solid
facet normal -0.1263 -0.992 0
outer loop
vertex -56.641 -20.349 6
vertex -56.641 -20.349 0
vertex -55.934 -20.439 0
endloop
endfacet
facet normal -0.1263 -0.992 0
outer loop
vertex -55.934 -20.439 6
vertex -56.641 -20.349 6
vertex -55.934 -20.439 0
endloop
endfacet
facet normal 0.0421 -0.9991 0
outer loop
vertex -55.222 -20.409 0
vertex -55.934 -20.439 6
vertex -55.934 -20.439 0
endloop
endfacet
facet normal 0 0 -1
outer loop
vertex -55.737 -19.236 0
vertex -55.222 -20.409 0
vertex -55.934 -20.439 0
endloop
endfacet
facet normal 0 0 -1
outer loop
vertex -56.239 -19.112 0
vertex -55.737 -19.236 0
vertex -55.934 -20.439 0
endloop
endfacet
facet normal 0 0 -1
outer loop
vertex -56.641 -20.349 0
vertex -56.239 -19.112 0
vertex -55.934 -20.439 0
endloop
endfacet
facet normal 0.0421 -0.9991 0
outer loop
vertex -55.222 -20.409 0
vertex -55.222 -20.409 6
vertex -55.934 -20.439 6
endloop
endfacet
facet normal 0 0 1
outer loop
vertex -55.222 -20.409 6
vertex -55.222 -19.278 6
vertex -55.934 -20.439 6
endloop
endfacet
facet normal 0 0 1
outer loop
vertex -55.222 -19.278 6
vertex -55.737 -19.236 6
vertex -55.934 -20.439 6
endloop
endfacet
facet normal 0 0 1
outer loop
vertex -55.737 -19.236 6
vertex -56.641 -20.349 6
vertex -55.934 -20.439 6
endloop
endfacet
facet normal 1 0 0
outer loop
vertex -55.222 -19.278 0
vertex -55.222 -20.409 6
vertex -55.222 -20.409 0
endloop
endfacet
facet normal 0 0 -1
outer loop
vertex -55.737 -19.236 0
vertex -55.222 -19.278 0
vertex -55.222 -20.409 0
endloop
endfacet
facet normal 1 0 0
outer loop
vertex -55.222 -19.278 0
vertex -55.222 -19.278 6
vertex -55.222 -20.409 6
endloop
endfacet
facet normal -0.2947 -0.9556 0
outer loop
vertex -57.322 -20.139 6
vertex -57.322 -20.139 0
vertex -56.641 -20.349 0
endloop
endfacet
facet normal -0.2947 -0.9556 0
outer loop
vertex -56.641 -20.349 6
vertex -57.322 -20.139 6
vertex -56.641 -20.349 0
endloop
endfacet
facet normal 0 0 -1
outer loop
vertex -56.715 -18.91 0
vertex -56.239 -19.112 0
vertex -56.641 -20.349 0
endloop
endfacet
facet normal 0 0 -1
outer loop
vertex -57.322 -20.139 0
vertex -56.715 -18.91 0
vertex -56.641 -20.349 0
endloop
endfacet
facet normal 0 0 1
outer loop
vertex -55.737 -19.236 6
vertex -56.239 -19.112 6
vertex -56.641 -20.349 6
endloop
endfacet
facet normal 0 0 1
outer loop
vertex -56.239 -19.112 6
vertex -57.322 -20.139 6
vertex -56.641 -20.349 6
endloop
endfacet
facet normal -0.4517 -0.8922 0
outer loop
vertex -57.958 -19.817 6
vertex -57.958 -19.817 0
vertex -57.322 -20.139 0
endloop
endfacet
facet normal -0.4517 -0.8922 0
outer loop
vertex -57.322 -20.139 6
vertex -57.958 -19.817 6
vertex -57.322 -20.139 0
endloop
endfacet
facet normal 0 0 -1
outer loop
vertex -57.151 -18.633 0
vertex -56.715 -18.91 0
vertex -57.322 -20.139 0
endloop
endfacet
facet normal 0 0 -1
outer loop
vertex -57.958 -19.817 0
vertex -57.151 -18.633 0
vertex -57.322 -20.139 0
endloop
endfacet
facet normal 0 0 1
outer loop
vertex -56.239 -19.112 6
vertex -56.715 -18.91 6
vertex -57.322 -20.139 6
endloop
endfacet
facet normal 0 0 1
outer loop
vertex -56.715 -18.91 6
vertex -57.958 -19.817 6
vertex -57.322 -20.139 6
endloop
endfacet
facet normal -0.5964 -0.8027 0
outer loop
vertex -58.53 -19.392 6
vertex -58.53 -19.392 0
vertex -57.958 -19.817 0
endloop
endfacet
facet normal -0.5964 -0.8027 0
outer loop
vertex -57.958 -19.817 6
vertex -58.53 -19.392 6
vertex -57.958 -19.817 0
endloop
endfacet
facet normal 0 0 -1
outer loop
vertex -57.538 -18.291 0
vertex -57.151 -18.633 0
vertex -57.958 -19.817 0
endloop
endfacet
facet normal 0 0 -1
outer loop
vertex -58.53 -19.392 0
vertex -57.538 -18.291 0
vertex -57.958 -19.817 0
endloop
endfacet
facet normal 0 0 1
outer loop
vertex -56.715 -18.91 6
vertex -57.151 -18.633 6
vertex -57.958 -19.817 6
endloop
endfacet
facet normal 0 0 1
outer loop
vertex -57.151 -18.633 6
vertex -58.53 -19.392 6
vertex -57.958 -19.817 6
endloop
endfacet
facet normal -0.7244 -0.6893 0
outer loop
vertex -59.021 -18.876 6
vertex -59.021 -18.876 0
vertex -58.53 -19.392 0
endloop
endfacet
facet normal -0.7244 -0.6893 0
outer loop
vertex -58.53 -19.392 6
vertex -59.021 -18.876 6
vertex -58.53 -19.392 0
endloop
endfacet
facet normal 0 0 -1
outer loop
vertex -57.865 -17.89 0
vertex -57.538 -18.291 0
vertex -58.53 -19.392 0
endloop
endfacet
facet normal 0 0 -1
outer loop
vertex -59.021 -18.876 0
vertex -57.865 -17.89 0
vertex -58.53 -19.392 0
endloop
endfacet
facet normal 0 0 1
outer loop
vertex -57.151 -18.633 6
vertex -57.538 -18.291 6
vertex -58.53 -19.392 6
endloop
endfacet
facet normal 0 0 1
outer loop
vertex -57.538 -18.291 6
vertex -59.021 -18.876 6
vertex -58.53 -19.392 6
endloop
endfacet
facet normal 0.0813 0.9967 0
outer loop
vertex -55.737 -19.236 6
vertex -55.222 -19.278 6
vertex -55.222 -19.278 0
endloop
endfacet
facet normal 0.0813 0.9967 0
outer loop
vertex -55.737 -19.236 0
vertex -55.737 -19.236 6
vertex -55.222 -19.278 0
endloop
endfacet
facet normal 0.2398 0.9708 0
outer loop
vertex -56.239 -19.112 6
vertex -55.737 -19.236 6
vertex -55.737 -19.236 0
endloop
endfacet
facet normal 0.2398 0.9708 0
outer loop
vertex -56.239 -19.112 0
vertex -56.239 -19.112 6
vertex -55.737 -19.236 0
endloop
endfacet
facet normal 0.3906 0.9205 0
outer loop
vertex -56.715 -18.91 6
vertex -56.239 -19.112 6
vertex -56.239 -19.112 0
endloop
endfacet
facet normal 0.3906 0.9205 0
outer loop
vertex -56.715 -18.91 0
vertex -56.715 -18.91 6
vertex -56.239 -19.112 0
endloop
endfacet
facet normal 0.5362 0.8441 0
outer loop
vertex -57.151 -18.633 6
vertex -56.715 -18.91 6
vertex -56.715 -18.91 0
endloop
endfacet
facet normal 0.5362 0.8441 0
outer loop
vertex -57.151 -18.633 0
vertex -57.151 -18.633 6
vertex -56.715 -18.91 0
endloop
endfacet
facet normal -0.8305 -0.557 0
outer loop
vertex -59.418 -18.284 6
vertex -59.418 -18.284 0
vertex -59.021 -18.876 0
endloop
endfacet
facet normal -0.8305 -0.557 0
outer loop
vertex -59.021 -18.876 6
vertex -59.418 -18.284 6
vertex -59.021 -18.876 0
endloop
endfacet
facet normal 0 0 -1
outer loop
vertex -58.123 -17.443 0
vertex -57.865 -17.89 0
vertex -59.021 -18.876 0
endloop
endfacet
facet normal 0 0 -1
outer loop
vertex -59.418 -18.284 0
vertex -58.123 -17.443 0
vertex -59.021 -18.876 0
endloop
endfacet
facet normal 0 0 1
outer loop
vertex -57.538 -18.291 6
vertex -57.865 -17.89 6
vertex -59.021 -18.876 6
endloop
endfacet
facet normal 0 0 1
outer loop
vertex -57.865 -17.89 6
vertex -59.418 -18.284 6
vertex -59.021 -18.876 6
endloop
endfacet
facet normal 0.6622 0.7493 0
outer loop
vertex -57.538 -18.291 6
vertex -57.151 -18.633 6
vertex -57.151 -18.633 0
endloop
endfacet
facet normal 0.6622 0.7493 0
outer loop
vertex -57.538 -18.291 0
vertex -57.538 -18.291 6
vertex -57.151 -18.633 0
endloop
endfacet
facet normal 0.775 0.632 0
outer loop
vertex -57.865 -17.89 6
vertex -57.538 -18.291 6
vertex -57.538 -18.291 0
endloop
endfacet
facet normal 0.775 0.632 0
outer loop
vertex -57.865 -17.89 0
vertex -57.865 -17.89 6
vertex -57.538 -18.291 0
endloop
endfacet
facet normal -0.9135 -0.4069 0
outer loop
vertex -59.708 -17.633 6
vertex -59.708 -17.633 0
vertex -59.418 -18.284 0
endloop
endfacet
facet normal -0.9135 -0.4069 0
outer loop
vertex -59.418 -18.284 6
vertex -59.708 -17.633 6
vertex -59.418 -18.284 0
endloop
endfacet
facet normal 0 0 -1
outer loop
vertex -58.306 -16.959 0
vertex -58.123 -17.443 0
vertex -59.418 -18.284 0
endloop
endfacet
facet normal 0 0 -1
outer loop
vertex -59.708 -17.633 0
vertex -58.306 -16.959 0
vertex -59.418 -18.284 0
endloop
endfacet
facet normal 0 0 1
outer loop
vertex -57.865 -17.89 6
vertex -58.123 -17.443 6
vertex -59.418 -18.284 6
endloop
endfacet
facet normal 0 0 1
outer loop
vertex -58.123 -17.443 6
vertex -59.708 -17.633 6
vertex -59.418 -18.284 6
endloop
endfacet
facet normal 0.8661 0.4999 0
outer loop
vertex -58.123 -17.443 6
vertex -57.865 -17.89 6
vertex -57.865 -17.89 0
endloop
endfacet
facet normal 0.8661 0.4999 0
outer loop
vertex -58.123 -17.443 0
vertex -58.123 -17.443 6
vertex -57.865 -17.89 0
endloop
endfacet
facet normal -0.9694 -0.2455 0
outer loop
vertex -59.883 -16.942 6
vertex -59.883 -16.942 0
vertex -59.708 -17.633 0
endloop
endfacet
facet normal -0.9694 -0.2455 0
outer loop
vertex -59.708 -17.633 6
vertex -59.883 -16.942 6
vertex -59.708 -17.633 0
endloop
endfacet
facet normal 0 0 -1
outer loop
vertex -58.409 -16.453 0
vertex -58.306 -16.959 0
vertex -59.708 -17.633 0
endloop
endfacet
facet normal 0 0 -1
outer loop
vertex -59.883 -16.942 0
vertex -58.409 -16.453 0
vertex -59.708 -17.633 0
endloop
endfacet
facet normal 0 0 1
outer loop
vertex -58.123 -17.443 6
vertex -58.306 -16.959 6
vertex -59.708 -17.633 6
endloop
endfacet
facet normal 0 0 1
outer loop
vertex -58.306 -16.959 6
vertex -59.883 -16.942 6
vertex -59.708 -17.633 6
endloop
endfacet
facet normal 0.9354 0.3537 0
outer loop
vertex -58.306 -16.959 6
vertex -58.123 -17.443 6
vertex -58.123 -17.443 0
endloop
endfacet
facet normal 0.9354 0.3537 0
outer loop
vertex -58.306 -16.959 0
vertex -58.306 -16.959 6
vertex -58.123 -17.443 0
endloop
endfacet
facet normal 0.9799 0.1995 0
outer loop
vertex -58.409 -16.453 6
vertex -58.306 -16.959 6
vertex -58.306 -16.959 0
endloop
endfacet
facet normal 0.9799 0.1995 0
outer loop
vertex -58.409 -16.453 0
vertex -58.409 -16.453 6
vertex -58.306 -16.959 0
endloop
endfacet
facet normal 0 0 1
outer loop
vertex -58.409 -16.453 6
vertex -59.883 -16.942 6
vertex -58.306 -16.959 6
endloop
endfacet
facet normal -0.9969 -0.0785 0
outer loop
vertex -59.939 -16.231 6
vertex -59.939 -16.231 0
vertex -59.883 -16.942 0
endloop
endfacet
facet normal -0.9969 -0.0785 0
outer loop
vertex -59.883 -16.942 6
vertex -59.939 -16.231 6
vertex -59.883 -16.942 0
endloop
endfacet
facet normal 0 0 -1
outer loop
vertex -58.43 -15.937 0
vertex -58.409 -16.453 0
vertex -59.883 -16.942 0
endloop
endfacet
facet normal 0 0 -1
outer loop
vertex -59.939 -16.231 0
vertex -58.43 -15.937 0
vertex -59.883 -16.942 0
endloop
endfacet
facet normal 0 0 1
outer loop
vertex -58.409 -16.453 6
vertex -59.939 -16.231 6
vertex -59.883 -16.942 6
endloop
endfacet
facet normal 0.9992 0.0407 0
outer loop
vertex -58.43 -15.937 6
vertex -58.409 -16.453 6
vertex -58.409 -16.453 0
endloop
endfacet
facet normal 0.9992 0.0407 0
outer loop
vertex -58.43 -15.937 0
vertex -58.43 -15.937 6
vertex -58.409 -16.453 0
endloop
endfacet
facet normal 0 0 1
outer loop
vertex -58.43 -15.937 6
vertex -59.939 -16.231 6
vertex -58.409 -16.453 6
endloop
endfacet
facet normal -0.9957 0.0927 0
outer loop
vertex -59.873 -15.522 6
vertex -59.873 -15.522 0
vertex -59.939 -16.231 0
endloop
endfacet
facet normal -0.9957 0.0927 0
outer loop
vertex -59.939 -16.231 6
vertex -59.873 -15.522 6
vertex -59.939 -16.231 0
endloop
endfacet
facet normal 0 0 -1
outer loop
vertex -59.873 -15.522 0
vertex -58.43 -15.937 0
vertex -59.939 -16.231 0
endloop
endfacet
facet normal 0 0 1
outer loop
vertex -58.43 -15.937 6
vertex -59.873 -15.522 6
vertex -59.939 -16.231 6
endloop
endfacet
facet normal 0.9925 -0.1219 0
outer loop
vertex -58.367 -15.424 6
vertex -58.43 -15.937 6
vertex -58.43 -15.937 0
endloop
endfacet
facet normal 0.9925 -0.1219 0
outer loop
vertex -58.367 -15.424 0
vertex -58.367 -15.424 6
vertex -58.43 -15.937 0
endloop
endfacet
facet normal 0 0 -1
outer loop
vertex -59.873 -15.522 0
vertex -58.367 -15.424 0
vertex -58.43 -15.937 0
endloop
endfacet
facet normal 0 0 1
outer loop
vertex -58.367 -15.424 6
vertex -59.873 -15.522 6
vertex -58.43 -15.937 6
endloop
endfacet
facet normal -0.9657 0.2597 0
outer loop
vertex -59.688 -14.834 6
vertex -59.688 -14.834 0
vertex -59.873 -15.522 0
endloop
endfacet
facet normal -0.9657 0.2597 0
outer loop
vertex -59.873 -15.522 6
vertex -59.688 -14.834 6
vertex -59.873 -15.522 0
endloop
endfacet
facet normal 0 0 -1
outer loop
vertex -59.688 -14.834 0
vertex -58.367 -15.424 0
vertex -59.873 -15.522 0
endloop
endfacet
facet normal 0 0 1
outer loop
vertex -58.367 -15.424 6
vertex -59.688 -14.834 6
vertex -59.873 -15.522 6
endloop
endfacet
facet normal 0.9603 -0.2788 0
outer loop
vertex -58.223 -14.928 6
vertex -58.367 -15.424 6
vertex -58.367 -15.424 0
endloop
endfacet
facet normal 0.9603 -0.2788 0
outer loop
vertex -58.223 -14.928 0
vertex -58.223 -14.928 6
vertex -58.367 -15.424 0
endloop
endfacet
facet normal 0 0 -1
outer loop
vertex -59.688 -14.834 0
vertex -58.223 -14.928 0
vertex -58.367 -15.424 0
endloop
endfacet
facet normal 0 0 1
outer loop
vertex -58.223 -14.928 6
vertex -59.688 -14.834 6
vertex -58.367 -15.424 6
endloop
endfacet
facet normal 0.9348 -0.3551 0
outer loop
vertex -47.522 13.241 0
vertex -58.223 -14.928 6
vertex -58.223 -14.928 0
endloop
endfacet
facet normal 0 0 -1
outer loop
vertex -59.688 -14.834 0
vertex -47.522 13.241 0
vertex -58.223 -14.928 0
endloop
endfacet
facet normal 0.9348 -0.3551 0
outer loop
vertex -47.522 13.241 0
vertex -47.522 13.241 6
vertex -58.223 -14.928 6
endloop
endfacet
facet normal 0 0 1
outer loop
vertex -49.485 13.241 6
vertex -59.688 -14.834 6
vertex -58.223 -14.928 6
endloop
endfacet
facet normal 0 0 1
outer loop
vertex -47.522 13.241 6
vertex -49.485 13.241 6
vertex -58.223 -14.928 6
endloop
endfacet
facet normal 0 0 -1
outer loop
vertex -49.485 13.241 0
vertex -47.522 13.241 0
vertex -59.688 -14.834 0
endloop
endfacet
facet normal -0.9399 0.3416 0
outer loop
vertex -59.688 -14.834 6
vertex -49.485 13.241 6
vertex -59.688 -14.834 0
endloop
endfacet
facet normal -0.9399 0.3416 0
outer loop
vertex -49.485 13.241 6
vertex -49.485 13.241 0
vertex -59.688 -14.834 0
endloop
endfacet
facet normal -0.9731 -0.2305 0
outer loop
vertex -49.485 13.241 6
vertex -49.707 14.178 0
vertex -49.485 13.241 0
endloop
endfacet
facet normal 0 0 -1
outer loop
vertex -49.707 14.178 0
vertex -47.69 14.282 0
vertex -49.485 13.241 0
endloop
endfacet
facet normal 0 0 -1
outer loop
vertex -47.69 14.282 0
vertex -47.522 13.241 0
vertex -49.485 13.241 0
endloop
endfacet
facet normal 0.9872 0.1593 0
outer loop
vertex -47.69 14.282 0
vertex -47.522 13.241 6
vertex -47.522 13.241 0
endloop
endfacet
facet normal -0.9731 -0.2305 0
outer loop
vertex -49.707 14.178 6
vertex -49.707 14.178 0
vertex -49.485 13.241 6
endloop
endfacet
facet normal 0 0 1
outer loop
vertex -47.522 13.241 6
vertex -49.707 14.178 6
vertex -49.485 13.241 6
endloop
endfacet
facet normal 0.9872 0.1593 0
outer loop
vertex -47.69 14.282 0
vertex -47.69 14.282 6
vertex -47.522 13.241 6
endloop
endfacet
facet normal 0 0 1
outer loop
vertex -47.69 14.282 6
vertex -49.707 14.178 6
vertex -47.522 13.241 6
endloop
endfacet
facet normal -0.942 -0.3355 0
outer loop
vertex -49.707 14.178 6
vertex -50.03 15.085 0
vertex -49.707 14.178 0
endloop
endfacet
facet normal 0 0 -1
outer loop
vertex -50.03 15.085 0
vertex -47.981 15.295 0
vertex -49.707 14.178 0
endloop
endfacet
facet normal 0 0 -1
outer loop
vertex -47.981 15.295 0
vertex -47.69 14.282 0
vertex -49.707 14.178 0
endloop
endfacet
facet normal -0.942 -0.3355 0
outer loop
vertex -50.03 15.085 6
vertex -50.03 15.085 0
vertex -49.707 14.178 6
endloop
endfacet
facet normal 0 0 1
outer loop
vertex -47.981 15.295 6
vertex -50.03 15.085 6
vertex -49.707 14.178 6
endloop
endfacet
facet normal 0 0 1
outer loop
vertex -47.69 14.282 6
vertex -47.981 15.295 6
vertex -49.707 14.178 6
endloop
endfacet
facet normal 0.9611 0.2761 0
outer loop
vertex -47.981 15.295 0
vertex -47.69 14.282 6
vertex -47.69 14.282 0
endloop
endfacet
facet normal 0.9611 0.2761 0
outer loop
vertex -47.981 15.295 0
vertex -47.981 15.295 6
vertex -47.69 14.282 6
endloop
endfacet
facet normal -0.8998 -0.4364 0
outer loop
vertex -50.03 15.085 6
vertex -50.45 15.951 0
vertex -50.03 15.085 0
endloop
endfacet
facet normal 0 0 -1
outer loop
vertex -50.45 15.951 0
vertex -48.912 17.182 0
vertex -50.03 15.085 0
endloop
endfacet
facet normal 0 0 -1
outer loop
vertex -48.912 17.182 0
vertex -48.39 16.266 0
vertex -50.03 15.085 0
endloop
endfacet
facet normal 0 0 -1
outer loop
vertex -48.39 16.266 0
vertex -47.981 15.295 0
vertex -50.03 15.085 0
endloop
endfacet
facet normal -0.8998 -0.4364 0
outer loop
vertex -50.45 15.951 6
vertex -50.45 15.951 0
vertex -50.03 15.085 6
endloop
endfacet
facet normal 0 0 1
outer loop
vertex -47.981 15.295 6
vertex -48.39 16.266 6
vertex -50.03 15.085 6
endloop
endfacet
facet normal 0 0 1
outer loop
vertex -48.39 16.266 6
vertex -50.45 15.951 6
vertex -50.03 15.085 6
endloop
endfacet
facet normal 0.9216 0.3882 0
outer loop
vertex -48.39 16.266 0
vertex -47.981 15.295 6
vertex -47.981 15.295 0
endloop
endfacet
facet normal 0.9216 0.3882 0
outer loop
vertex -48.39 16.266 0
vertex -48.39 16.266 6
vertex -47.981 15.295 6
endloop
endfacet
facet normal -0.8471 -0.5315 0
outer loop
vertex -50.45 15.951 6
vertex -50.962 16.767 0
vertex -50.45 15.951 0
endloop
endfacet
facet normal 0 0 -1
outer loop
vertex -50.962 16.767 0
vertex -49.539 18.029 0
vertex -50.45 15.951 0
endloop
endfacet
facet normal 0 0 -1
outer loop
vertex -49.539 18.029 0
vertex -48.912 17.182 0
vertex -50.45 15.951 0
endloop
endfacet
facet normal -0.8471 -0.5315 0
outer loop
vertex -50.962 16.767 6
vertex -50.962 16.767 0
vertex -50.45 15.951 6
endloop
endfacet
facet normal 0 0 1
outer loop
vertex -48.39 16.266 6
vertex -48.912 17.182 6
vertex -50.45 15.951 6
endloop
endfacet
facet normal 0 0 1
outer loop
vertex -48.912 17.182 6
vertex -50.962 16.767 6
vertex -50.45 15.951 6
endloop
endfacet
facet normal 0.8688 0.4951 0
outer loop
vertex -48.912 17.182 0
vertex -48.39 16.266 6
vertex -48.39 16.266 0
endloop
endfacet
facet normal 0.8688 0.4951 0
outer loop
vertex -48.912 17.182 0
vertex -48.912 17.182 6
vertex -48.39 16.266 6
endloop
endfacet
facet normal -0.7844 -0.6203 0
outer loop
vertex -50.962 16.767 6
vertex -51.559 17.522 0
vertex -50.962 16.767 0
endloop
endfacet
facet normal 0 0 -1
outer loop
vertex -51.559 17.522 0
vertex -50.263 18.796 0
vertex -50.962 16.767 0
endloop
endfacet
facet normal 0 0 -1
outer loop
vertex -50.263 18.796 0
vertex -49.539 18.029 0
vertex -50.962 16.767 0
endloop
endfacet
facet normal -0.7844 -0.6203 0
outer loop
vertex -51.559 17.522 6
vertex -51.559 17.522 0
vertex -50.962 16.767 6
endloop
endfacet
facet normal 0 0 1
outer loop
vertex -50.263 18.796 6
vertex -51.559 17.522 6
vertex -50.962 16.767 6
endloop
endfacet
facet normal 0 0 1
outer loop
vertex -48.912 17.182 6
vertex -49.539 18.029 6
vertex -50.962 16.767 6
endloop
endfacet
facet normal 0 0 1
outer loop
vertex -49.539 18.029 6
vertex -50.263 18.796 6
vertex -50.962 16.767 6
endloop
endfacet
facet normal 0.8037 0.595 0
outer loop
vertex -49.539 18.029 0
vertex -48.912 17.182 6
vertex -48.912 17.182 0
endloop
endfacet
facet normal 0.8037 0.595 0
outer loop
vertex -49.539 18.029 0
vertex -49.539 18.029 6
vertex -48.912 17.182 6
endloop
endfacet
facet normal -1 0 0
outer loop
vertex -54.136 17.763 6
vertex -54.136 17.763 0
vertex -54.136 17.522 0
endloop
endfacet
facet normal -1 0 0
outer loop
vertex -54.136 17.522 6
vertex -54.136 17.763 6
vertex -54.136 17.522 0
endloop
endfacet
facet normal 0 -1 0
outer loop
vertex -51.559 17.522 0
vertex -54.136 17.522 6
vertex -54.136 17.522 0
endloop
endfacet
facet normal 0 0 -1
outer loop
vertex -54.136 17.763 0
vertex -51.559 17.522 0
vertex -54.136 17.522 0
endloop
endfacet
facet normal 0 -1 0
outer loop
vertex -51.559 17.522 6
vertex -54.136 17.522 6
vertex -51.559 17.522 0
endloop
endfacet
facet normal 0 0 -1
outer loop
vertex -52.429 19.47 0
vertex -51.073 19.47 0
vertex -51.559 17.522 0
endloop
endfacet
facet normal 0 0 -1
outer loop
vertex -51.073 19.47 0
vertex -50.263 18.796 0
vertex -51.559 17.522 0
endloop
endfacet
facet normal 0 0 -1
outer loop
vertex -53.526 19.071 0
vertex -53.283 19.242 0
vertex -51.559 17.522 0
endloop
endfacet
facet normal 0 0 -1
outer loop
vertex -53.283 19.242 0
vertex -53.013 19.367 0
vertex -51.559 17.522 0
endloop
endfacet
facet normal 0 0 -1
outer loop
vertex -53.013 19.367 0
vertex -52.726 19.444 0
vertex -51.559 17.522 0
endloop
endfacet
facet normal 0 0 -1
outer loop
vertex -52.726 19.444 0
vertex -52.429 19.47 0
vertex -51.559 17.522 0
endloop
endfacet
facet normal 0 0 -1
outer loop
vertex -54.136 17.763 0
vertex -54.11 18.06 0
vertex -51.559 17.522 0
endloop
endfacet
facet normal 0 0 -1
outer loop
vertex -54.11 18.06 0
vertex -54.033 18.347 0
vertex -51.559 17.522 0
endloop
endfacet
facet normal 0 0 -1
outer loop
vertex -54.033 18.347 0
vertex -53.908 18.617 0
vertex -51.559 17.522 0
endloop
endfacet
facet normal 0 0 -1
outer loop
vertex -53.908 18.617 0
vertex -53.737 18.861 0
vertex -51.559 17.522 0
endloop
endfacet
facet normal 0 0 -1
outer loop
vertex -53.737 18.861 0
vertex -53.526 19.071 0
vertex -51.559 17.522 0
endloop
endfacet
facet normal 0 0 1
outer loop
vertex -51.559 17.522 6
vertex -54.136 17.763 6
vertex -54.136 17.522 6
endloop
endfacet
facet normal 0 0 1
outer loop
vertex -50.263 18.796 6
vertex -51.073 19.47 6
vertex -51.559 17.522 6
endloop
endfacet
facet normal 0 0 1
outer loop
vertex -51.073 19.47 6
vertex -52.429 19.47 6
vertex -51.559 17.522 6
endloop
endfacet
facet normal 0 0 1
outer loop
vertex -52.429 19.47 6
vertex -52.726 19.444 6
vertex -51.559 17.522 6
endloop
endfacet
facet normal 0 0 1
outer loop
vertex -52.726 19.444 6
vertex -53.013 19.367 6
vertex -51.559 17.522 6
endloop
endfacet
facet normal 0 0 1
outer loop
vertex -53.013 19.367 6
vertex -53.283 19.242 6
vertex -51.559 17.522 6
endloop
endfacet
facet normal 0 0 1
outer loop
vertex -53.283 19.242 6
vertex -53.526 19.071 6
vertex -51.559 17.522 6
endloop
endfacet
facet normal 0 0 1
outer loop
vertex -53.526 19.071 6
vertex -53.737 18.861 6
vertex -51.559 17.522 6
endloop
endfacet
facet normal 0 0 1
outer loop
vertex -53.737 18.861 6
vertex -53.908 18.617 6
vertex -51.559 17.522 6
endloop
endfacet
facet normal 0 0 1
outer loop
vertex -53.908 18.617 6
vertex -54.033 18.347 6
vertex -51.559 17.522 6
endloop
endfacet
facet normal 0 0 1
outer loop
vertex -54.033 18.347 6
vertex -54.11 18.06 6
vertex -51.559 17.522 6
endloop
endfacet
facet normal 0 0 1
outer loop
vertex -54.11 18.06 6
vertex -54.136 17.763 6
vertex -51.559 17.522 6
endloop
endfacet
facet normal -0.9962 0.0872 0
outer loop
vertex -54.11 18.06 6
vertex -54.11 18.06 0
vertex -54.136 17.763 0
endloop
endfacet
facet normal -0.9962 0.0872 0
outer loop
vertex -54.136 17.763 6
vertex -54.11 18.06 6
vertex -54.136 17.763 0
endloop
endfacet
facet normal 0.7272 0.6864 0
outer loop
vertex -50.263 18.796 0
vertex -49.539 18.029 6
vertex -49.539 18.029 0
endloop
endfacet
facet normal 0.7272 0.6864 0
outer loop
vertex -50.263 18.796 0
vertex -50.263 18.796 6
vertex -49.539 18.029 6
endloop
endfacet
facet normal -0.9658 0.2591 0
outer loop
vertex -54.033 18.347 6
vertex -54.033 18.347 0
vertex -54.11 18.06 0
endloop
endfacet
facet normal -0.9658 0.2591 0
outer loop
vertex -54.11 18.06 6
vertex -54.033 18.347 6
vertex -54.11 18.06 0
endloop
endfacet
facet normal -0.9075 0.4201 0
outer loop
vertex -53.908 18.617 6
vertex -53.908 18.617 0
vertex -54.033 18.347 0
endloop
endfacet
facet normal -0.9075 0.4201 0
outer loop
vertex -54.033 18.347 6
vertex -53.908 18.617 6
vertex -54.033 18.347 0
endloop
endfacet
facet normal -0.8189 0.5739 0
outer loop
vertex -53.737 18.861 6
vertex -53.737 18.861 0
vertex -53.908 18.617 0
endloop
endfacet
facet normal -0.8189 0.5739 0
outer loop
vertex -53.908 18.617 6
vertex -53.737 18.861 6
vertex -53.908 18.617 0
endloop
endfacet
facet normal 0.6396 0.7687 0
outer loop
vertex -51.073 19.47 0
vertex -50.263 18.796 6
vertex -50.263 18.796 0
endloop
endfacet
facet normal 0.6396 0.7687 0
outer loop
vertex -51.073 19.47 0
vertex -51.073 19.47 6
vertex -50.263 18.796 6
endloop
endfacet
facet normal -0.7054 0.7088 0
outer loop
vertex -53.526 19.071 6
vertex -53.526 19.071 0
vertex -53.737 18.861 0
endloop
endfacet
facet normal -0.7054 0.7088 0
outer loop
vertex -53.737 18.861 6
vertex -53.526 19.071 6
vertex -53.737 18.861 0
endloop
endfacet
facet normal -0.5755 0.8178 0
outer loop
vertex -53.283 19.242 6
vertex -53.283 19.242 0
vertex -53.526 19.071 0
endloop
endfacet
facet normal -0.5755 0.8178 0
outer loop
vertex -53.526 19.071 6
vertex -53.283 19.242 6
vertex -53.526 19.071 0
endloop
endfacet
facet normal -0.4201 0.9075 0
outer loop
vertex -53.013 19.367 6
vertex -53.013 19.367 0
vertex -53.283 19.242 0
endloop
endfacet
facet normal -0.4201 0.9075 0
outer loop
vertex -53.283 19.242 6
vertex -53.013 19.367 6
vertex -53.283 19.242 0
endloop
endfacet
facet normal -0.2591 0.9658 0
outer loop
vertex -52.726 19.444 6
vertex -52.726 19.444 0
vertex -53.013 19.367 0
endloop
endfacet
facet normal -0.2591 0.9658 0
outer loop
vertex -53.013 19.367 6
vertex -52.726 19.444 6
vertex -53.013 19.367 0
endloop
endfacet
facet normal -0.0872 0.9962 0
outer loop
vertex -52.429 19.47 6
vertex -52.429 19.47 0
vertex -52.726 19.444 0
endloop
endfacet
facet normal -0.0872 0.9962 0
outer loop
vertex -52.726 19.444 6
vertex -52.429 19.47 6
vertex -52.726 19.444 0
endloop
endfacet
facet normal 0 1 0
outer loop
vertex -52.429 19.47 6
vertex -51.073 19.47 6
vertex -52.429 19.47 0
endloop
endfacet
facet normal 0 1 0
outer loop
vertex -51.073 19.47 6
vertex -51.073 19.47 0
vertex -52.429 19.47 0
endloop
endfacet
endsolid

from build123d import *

# Parameters (mm, degrees)
ESTRUSIONE_ESTRUSIONE2_DEPTH = 6
SMUSSO1_SIZE                 = 1
RACCORDO5_R                  = 1.707107


# Read off the part's stored shape, not the designer's step: Estrusione-Estrusione2
with BuildPart() as part:
    # Estrusione-Estrusione2 outline → Estrusione-Estrusione2 (new body)
    with BuildSketch(Plane.XY):
        with BuildLine():
            Line((-54.136250947, 19.470330923), (-54.136250947, 17.522149798))
            Line((-54.136250947, 17.522149798), (-51.559423685, 17.522149798))
            ThreePointArc((-51.559423685, 17.522149798), (-50.228448587, 15.523864916), (-49.484742197, 13.240985597))
            Line((-49.484742197, 13.240985597), (-59.687524076, -14.833797153))
            ThreePointArc((-59.687524076, -14.833797153), (-59.02122155, -18.875711178), (-55.222335236, -20.408516065))
            Line((-55.222335236, -20.408516065), (-55.222335236, -19.277551448))
            ThreePointArc((-55.222335236, -19.277551448), (-57.864636062, -17.890294899), (-58.223117797, -14.927572295))
            Line((-58.223117797, -14.927572295), (-47.522213123, 13.240985597))
            ThreePointArc((-47.522213123, 13.240985597), (-48.637151321, 16.732148519), (-51.073062414, 19.470330923))
            Line((-51.073062414, 19.470330923), (-54.136250947, 19.470330923))
        make_face()
    extrude(amount=ESTRUSIONE_ESTRUSIONE2_DEPTH)

    # Smusso1
    smusso1_edges = [part.edges().sort_by_distance(p)[0] for p in [
        (-54.136250947, 19.470330923, 3),
    ]]
    chamfer(smusso1_edges, length=SMUSSO1_SIZE)

    # Raccordo5
    raccordo5_edges = [part.edges().sort_by_distance(p)[0] for p in [
        (-54.136250947, 18.470330923, 3),
        (-53.136250947, 19.470330923, 3),
    ]]
    fillet(raccordo5_edges, radius=RACCORDO5_R - 0.0001)  # a hair under: the kernel refuses the full size


solid = part.part
